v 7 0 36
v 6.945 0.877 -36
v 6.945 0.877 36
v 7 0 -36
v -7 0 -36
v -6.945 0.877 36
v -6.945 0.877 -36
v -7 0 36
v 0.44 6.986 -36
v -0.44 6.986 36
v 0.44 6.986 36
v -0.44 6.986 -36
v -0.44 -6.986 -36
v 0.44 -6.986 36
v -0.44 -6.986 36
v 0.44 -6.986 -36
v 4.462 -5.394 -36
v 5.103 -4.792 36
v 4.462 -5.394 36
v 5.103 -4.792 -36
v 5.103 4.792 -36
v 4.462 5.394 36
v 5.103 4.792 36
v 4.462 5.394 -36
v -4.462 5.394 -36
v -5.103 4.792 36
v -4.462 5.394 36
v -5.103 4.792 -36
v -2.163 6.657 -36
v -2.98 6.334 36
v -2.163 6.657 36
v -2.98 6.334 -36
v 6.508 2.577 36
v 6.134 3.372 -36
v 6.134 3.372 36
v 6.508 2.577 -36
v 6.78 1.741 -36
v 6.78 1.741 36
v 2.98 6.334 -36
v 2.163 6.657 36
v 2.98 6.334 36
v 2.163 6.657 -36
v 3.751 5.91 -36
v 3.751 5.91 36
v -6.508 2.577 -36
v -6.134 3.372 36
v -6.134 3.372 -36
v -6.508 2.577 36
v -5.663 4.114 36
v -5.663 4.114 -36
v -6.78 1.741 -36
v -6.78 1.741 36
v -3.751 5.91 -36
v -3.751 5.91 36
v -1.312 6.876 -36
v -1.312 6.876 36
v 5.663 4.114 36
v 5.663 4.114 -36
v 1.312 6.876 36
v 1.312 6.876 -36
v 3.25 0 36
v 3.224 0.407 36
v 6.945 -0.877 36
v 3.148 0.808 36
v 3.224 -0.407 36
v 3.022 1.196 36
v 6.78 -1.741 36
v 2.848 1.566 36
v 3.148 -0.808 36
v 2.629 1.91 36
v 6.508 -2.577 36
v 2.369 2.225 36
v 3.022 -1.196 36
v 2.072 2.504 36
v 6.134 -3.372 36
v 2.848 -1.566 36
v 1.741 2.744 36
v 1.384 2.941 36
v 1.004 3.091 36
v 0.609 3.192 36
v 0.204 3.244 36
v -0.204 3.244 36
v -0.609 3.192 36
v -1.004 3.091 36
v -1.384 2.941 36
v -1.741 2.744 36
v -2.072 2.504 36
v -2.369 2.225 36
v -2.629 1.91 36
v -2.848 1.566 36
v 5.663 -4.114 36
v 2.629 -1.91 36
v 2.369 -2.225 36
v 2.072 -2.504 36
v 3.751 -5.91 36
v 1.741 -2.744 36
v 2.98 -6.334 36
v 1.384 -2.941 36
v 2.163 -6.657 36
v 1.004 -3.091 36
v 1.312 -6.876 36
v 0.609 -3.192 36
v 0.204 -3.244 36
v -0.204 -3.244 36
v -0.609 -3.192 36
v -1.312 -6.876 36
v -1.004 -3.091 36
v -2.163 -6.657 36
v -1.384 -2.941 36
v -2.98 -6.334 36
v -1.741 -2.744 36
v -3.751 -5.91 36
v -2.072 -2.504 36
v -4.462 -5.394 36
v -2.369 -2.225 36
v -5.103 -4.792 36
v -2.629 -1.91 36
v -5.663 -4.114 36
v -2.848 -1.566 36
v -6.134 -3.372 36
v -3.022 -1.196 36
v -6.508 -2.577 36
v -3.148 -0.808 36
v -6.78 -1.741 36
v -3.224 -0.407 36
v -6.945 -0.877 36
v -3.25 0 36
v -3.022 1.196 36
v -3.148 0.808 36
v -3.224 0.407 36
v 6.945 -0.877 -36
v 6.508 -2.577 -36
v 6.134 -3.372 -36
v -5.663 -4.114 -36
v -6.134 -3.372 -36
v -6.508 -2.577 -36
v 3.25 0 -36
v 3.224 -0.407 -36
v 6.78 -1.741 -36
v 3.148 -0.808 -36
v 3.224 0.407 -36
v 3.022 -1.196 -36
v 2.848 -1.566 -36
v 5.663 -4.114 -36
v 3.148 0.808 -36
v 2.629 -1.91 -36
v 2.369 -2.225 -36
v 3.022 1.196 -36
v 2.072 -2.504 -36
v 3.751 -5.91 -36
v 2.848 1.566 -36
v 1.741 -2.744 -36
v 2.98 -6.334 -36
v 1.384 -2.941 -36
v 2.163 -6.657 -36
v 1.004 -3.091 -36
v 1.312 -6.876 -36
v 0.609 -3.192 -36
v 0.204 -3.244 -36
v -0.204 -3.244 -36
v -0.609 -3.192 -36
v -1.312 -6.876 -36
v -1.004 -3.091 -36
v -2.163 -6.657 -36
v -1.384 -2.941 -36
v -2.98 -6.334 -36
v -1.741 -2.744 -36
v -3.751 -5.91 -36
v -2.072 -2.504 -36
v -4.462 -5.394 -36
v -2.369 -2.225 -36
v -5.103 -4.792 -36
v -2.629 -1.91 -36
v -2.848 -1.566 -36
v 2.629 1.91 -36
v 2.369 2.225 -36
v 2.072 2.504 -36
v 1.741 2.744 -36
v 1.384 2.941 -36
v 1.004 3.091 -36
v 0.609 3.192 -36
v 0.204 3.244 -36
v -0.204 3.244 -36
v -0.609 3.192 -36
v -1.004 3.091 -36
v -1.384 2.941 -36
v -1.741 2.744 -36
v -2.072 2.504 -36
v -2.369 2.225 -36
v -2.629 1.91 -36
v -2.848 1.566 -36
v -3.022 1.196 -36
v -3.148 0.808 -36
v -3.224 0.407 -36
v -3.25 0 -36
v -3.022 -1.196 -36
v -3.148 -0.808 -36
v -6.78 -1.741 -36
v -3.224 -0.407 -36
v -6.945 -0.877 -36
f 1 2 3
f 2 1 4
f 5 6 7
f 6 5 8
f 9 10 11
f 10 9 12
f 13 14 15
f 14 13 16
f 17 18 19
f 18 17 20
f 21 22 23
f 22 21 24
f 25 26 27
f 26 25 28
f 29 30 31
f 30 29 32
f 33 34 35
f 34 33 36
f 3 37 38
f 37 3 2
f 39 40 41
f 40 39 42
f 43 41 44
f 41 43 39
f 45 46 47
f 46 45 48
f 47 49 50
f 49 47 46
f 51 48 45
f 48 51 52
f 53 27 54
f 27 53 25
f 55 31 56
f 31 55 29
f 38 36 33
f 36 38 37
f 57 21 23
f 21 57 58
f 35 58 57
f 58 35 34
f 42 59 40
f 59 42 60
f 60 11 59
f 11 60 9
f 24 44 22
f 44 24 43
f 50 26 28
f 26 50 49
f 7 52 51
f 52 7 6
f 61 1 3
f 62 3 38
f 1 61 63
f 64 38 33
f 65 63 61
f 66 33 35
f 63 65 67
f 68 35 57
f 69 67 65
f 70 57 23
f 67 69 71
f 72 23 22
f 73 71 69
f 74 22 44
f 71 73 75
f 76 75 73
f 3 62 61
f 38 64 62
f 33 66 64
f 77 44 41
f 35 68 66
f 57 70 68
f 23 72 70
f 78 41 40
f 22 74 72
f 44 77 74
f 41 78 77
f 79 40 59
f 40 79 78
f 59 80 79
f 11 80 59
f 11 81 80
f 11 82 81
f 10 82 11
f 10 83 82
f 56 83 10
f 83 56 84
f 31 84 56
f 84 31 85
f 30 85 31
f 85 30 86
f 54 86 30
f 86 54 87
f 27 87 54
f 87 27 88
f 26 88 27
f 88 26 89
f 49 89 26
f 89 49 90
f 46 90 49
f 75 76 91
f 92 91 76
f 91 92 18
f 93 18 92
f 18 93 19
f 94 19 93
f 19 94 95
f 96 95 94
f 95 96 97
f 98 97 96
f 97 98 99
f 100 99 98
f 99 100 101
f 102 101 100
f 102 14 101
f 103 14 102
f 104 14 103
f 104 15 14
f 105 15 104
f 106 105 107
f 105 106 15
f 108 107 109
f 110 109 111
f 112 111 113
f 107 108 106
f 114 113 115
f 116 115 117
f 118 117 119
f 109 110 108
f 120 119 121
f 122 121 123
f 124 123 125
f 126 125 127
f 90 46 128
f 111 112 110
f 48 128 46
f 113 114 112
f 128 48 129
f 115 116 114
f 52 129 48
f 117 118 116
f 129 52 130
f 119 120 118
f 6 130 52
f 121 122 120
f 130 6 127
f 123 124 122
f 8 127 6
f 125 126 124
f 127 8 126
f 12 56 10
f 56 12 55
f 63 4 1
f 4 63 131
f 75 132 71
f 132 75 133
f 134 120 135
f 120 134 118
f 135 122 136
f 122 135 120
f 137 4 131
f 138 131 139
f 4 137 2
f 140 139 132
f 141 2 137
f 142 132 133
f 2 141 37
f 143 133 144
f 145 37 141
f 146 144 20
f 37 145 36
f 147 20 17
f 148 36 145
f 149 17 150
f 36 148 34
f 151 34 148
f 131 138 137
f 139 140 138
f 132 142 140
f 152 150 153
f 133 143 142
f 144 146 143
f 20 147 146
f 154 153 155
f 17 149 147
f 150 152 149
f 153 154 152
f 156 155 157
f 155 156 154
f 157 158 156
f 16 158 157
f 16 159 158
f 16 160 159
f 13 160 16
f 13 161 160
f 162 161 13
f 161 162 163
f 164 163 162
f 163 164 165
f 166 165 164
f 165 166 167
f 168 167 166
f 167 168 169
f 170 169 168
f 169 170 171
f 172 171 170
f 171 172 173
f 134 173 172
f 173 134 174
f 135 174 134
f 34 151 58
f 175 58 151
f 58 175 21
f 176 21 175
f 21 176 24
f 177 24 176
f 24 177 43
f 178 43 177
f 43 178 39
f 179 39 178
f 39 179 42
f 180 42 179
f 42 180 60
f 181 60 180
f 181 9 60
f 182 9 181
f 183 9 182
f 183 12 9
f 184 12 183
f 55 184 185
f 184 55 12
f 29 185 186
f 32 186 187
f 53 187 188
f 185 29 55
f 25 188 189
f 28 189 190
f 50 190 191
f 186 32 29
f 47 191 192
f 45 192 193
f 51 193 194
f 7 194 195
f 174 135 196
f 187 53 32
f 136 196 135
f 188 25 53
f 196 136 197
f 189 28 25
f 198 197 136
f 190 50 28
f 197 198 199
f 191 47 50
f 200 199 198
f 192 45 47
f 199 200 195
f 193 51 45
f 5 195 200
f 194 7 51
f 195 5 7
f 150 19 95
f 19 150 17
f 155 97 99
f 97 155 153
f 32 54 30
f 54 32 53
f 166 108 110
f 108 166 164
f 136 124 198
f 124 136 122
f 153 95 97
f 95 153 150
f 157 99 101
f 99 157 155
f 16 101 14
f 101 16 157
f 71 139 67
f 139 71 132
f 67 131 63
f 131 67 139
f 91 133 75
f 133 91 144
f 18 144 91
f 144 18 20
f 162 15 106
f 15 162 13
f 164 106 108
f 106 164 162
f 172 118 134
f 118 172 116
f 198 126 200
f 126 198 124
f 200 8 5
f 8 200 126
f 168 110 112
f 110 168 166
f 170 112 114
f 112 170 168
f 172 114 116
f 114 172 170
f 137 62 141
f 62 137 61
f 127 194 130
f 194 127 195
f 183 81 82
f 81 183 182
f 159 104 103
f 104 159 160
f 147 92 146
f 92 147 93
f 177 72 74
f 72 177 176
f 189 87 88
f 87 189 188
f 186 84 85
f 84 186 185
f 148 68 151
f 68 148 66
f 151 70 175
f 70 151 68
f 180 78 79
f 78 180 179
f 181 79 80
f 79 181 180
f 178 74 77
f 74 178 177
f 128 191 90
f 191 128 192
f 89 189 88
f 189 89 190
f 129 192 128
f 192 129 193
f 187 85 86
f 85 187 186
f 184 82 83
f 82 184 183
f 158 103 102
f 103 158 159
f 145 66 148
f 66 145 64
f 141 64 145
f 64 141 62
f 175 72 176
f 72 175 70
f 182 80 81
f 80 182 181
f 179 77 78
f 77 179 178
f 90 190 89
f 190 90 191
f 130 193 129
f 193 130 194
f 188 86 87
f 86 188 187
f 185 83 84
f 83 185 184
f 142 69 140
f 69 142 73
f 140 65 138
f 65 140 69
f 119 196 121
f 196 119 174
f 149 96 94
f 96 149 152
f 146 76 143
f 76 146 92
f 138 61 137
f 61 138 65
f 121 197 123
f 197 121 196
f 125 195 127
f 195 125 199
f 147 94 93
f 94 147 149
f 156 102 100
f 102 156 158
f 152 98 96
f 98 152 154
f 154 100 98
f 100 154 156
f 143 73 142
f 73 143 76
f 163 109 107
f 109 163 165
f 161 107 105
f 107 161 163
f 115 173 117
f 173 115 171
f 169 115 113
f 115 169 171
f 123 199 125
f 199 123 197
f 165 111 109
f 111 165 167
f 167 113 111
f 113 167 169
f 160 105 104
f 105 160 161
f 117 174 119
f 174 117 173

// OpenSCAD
$fn = 50;


difference() {
	union() {
		translate(v = [0, 0, -36.0000000000]) {
			cylinder(h = 72, r = 7.0000000000);
		}
	}
	union() {
		translate(v = [0, 0, -100.0000000000]) {
			cylinder(h = 200, r = 3.2500000000);
		}
	}
}
